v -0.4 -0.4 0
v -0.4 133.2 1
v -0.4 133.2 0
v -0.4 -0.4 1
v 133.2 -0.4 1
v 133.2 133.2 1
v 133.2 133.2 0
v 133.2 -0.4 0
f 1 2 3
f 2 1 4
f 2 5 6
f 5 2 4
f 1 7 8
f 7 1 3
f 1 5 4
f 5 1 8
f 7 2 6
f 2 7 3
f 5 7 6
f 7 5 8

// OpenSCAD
width = 8;
height = 8;
pixelSize = 16.6;
baseThickness = 1.0;
wallThickness = 0.8;
wallHeight = 15;
stripThickness = 0.9;
ledCutoutWidth = 7;
ledCutoutHeight = 9;
ledBendspace = 4;



for(i=[0:1:width-1], j=[0:1:height-1]){
    translate([pixelSize*i, pixelSize*j, 0]){
        if(j%2==1){
            mirror([0,1,0])
            translate([0,-pixelSize,0])
              translate([-wallThickness/2, -wallThickness/2,0])
              cube([pixelSize+wallThickness, pixelSize+wallThickness, baseThickness]);
        }
        else{
            translate([-wallThickness/2, -wallThickness/2,0])
            cube([pixelSize+wallThickness, pixelSize+wallThickness, baseThickness]);
        }
    }
};
 
